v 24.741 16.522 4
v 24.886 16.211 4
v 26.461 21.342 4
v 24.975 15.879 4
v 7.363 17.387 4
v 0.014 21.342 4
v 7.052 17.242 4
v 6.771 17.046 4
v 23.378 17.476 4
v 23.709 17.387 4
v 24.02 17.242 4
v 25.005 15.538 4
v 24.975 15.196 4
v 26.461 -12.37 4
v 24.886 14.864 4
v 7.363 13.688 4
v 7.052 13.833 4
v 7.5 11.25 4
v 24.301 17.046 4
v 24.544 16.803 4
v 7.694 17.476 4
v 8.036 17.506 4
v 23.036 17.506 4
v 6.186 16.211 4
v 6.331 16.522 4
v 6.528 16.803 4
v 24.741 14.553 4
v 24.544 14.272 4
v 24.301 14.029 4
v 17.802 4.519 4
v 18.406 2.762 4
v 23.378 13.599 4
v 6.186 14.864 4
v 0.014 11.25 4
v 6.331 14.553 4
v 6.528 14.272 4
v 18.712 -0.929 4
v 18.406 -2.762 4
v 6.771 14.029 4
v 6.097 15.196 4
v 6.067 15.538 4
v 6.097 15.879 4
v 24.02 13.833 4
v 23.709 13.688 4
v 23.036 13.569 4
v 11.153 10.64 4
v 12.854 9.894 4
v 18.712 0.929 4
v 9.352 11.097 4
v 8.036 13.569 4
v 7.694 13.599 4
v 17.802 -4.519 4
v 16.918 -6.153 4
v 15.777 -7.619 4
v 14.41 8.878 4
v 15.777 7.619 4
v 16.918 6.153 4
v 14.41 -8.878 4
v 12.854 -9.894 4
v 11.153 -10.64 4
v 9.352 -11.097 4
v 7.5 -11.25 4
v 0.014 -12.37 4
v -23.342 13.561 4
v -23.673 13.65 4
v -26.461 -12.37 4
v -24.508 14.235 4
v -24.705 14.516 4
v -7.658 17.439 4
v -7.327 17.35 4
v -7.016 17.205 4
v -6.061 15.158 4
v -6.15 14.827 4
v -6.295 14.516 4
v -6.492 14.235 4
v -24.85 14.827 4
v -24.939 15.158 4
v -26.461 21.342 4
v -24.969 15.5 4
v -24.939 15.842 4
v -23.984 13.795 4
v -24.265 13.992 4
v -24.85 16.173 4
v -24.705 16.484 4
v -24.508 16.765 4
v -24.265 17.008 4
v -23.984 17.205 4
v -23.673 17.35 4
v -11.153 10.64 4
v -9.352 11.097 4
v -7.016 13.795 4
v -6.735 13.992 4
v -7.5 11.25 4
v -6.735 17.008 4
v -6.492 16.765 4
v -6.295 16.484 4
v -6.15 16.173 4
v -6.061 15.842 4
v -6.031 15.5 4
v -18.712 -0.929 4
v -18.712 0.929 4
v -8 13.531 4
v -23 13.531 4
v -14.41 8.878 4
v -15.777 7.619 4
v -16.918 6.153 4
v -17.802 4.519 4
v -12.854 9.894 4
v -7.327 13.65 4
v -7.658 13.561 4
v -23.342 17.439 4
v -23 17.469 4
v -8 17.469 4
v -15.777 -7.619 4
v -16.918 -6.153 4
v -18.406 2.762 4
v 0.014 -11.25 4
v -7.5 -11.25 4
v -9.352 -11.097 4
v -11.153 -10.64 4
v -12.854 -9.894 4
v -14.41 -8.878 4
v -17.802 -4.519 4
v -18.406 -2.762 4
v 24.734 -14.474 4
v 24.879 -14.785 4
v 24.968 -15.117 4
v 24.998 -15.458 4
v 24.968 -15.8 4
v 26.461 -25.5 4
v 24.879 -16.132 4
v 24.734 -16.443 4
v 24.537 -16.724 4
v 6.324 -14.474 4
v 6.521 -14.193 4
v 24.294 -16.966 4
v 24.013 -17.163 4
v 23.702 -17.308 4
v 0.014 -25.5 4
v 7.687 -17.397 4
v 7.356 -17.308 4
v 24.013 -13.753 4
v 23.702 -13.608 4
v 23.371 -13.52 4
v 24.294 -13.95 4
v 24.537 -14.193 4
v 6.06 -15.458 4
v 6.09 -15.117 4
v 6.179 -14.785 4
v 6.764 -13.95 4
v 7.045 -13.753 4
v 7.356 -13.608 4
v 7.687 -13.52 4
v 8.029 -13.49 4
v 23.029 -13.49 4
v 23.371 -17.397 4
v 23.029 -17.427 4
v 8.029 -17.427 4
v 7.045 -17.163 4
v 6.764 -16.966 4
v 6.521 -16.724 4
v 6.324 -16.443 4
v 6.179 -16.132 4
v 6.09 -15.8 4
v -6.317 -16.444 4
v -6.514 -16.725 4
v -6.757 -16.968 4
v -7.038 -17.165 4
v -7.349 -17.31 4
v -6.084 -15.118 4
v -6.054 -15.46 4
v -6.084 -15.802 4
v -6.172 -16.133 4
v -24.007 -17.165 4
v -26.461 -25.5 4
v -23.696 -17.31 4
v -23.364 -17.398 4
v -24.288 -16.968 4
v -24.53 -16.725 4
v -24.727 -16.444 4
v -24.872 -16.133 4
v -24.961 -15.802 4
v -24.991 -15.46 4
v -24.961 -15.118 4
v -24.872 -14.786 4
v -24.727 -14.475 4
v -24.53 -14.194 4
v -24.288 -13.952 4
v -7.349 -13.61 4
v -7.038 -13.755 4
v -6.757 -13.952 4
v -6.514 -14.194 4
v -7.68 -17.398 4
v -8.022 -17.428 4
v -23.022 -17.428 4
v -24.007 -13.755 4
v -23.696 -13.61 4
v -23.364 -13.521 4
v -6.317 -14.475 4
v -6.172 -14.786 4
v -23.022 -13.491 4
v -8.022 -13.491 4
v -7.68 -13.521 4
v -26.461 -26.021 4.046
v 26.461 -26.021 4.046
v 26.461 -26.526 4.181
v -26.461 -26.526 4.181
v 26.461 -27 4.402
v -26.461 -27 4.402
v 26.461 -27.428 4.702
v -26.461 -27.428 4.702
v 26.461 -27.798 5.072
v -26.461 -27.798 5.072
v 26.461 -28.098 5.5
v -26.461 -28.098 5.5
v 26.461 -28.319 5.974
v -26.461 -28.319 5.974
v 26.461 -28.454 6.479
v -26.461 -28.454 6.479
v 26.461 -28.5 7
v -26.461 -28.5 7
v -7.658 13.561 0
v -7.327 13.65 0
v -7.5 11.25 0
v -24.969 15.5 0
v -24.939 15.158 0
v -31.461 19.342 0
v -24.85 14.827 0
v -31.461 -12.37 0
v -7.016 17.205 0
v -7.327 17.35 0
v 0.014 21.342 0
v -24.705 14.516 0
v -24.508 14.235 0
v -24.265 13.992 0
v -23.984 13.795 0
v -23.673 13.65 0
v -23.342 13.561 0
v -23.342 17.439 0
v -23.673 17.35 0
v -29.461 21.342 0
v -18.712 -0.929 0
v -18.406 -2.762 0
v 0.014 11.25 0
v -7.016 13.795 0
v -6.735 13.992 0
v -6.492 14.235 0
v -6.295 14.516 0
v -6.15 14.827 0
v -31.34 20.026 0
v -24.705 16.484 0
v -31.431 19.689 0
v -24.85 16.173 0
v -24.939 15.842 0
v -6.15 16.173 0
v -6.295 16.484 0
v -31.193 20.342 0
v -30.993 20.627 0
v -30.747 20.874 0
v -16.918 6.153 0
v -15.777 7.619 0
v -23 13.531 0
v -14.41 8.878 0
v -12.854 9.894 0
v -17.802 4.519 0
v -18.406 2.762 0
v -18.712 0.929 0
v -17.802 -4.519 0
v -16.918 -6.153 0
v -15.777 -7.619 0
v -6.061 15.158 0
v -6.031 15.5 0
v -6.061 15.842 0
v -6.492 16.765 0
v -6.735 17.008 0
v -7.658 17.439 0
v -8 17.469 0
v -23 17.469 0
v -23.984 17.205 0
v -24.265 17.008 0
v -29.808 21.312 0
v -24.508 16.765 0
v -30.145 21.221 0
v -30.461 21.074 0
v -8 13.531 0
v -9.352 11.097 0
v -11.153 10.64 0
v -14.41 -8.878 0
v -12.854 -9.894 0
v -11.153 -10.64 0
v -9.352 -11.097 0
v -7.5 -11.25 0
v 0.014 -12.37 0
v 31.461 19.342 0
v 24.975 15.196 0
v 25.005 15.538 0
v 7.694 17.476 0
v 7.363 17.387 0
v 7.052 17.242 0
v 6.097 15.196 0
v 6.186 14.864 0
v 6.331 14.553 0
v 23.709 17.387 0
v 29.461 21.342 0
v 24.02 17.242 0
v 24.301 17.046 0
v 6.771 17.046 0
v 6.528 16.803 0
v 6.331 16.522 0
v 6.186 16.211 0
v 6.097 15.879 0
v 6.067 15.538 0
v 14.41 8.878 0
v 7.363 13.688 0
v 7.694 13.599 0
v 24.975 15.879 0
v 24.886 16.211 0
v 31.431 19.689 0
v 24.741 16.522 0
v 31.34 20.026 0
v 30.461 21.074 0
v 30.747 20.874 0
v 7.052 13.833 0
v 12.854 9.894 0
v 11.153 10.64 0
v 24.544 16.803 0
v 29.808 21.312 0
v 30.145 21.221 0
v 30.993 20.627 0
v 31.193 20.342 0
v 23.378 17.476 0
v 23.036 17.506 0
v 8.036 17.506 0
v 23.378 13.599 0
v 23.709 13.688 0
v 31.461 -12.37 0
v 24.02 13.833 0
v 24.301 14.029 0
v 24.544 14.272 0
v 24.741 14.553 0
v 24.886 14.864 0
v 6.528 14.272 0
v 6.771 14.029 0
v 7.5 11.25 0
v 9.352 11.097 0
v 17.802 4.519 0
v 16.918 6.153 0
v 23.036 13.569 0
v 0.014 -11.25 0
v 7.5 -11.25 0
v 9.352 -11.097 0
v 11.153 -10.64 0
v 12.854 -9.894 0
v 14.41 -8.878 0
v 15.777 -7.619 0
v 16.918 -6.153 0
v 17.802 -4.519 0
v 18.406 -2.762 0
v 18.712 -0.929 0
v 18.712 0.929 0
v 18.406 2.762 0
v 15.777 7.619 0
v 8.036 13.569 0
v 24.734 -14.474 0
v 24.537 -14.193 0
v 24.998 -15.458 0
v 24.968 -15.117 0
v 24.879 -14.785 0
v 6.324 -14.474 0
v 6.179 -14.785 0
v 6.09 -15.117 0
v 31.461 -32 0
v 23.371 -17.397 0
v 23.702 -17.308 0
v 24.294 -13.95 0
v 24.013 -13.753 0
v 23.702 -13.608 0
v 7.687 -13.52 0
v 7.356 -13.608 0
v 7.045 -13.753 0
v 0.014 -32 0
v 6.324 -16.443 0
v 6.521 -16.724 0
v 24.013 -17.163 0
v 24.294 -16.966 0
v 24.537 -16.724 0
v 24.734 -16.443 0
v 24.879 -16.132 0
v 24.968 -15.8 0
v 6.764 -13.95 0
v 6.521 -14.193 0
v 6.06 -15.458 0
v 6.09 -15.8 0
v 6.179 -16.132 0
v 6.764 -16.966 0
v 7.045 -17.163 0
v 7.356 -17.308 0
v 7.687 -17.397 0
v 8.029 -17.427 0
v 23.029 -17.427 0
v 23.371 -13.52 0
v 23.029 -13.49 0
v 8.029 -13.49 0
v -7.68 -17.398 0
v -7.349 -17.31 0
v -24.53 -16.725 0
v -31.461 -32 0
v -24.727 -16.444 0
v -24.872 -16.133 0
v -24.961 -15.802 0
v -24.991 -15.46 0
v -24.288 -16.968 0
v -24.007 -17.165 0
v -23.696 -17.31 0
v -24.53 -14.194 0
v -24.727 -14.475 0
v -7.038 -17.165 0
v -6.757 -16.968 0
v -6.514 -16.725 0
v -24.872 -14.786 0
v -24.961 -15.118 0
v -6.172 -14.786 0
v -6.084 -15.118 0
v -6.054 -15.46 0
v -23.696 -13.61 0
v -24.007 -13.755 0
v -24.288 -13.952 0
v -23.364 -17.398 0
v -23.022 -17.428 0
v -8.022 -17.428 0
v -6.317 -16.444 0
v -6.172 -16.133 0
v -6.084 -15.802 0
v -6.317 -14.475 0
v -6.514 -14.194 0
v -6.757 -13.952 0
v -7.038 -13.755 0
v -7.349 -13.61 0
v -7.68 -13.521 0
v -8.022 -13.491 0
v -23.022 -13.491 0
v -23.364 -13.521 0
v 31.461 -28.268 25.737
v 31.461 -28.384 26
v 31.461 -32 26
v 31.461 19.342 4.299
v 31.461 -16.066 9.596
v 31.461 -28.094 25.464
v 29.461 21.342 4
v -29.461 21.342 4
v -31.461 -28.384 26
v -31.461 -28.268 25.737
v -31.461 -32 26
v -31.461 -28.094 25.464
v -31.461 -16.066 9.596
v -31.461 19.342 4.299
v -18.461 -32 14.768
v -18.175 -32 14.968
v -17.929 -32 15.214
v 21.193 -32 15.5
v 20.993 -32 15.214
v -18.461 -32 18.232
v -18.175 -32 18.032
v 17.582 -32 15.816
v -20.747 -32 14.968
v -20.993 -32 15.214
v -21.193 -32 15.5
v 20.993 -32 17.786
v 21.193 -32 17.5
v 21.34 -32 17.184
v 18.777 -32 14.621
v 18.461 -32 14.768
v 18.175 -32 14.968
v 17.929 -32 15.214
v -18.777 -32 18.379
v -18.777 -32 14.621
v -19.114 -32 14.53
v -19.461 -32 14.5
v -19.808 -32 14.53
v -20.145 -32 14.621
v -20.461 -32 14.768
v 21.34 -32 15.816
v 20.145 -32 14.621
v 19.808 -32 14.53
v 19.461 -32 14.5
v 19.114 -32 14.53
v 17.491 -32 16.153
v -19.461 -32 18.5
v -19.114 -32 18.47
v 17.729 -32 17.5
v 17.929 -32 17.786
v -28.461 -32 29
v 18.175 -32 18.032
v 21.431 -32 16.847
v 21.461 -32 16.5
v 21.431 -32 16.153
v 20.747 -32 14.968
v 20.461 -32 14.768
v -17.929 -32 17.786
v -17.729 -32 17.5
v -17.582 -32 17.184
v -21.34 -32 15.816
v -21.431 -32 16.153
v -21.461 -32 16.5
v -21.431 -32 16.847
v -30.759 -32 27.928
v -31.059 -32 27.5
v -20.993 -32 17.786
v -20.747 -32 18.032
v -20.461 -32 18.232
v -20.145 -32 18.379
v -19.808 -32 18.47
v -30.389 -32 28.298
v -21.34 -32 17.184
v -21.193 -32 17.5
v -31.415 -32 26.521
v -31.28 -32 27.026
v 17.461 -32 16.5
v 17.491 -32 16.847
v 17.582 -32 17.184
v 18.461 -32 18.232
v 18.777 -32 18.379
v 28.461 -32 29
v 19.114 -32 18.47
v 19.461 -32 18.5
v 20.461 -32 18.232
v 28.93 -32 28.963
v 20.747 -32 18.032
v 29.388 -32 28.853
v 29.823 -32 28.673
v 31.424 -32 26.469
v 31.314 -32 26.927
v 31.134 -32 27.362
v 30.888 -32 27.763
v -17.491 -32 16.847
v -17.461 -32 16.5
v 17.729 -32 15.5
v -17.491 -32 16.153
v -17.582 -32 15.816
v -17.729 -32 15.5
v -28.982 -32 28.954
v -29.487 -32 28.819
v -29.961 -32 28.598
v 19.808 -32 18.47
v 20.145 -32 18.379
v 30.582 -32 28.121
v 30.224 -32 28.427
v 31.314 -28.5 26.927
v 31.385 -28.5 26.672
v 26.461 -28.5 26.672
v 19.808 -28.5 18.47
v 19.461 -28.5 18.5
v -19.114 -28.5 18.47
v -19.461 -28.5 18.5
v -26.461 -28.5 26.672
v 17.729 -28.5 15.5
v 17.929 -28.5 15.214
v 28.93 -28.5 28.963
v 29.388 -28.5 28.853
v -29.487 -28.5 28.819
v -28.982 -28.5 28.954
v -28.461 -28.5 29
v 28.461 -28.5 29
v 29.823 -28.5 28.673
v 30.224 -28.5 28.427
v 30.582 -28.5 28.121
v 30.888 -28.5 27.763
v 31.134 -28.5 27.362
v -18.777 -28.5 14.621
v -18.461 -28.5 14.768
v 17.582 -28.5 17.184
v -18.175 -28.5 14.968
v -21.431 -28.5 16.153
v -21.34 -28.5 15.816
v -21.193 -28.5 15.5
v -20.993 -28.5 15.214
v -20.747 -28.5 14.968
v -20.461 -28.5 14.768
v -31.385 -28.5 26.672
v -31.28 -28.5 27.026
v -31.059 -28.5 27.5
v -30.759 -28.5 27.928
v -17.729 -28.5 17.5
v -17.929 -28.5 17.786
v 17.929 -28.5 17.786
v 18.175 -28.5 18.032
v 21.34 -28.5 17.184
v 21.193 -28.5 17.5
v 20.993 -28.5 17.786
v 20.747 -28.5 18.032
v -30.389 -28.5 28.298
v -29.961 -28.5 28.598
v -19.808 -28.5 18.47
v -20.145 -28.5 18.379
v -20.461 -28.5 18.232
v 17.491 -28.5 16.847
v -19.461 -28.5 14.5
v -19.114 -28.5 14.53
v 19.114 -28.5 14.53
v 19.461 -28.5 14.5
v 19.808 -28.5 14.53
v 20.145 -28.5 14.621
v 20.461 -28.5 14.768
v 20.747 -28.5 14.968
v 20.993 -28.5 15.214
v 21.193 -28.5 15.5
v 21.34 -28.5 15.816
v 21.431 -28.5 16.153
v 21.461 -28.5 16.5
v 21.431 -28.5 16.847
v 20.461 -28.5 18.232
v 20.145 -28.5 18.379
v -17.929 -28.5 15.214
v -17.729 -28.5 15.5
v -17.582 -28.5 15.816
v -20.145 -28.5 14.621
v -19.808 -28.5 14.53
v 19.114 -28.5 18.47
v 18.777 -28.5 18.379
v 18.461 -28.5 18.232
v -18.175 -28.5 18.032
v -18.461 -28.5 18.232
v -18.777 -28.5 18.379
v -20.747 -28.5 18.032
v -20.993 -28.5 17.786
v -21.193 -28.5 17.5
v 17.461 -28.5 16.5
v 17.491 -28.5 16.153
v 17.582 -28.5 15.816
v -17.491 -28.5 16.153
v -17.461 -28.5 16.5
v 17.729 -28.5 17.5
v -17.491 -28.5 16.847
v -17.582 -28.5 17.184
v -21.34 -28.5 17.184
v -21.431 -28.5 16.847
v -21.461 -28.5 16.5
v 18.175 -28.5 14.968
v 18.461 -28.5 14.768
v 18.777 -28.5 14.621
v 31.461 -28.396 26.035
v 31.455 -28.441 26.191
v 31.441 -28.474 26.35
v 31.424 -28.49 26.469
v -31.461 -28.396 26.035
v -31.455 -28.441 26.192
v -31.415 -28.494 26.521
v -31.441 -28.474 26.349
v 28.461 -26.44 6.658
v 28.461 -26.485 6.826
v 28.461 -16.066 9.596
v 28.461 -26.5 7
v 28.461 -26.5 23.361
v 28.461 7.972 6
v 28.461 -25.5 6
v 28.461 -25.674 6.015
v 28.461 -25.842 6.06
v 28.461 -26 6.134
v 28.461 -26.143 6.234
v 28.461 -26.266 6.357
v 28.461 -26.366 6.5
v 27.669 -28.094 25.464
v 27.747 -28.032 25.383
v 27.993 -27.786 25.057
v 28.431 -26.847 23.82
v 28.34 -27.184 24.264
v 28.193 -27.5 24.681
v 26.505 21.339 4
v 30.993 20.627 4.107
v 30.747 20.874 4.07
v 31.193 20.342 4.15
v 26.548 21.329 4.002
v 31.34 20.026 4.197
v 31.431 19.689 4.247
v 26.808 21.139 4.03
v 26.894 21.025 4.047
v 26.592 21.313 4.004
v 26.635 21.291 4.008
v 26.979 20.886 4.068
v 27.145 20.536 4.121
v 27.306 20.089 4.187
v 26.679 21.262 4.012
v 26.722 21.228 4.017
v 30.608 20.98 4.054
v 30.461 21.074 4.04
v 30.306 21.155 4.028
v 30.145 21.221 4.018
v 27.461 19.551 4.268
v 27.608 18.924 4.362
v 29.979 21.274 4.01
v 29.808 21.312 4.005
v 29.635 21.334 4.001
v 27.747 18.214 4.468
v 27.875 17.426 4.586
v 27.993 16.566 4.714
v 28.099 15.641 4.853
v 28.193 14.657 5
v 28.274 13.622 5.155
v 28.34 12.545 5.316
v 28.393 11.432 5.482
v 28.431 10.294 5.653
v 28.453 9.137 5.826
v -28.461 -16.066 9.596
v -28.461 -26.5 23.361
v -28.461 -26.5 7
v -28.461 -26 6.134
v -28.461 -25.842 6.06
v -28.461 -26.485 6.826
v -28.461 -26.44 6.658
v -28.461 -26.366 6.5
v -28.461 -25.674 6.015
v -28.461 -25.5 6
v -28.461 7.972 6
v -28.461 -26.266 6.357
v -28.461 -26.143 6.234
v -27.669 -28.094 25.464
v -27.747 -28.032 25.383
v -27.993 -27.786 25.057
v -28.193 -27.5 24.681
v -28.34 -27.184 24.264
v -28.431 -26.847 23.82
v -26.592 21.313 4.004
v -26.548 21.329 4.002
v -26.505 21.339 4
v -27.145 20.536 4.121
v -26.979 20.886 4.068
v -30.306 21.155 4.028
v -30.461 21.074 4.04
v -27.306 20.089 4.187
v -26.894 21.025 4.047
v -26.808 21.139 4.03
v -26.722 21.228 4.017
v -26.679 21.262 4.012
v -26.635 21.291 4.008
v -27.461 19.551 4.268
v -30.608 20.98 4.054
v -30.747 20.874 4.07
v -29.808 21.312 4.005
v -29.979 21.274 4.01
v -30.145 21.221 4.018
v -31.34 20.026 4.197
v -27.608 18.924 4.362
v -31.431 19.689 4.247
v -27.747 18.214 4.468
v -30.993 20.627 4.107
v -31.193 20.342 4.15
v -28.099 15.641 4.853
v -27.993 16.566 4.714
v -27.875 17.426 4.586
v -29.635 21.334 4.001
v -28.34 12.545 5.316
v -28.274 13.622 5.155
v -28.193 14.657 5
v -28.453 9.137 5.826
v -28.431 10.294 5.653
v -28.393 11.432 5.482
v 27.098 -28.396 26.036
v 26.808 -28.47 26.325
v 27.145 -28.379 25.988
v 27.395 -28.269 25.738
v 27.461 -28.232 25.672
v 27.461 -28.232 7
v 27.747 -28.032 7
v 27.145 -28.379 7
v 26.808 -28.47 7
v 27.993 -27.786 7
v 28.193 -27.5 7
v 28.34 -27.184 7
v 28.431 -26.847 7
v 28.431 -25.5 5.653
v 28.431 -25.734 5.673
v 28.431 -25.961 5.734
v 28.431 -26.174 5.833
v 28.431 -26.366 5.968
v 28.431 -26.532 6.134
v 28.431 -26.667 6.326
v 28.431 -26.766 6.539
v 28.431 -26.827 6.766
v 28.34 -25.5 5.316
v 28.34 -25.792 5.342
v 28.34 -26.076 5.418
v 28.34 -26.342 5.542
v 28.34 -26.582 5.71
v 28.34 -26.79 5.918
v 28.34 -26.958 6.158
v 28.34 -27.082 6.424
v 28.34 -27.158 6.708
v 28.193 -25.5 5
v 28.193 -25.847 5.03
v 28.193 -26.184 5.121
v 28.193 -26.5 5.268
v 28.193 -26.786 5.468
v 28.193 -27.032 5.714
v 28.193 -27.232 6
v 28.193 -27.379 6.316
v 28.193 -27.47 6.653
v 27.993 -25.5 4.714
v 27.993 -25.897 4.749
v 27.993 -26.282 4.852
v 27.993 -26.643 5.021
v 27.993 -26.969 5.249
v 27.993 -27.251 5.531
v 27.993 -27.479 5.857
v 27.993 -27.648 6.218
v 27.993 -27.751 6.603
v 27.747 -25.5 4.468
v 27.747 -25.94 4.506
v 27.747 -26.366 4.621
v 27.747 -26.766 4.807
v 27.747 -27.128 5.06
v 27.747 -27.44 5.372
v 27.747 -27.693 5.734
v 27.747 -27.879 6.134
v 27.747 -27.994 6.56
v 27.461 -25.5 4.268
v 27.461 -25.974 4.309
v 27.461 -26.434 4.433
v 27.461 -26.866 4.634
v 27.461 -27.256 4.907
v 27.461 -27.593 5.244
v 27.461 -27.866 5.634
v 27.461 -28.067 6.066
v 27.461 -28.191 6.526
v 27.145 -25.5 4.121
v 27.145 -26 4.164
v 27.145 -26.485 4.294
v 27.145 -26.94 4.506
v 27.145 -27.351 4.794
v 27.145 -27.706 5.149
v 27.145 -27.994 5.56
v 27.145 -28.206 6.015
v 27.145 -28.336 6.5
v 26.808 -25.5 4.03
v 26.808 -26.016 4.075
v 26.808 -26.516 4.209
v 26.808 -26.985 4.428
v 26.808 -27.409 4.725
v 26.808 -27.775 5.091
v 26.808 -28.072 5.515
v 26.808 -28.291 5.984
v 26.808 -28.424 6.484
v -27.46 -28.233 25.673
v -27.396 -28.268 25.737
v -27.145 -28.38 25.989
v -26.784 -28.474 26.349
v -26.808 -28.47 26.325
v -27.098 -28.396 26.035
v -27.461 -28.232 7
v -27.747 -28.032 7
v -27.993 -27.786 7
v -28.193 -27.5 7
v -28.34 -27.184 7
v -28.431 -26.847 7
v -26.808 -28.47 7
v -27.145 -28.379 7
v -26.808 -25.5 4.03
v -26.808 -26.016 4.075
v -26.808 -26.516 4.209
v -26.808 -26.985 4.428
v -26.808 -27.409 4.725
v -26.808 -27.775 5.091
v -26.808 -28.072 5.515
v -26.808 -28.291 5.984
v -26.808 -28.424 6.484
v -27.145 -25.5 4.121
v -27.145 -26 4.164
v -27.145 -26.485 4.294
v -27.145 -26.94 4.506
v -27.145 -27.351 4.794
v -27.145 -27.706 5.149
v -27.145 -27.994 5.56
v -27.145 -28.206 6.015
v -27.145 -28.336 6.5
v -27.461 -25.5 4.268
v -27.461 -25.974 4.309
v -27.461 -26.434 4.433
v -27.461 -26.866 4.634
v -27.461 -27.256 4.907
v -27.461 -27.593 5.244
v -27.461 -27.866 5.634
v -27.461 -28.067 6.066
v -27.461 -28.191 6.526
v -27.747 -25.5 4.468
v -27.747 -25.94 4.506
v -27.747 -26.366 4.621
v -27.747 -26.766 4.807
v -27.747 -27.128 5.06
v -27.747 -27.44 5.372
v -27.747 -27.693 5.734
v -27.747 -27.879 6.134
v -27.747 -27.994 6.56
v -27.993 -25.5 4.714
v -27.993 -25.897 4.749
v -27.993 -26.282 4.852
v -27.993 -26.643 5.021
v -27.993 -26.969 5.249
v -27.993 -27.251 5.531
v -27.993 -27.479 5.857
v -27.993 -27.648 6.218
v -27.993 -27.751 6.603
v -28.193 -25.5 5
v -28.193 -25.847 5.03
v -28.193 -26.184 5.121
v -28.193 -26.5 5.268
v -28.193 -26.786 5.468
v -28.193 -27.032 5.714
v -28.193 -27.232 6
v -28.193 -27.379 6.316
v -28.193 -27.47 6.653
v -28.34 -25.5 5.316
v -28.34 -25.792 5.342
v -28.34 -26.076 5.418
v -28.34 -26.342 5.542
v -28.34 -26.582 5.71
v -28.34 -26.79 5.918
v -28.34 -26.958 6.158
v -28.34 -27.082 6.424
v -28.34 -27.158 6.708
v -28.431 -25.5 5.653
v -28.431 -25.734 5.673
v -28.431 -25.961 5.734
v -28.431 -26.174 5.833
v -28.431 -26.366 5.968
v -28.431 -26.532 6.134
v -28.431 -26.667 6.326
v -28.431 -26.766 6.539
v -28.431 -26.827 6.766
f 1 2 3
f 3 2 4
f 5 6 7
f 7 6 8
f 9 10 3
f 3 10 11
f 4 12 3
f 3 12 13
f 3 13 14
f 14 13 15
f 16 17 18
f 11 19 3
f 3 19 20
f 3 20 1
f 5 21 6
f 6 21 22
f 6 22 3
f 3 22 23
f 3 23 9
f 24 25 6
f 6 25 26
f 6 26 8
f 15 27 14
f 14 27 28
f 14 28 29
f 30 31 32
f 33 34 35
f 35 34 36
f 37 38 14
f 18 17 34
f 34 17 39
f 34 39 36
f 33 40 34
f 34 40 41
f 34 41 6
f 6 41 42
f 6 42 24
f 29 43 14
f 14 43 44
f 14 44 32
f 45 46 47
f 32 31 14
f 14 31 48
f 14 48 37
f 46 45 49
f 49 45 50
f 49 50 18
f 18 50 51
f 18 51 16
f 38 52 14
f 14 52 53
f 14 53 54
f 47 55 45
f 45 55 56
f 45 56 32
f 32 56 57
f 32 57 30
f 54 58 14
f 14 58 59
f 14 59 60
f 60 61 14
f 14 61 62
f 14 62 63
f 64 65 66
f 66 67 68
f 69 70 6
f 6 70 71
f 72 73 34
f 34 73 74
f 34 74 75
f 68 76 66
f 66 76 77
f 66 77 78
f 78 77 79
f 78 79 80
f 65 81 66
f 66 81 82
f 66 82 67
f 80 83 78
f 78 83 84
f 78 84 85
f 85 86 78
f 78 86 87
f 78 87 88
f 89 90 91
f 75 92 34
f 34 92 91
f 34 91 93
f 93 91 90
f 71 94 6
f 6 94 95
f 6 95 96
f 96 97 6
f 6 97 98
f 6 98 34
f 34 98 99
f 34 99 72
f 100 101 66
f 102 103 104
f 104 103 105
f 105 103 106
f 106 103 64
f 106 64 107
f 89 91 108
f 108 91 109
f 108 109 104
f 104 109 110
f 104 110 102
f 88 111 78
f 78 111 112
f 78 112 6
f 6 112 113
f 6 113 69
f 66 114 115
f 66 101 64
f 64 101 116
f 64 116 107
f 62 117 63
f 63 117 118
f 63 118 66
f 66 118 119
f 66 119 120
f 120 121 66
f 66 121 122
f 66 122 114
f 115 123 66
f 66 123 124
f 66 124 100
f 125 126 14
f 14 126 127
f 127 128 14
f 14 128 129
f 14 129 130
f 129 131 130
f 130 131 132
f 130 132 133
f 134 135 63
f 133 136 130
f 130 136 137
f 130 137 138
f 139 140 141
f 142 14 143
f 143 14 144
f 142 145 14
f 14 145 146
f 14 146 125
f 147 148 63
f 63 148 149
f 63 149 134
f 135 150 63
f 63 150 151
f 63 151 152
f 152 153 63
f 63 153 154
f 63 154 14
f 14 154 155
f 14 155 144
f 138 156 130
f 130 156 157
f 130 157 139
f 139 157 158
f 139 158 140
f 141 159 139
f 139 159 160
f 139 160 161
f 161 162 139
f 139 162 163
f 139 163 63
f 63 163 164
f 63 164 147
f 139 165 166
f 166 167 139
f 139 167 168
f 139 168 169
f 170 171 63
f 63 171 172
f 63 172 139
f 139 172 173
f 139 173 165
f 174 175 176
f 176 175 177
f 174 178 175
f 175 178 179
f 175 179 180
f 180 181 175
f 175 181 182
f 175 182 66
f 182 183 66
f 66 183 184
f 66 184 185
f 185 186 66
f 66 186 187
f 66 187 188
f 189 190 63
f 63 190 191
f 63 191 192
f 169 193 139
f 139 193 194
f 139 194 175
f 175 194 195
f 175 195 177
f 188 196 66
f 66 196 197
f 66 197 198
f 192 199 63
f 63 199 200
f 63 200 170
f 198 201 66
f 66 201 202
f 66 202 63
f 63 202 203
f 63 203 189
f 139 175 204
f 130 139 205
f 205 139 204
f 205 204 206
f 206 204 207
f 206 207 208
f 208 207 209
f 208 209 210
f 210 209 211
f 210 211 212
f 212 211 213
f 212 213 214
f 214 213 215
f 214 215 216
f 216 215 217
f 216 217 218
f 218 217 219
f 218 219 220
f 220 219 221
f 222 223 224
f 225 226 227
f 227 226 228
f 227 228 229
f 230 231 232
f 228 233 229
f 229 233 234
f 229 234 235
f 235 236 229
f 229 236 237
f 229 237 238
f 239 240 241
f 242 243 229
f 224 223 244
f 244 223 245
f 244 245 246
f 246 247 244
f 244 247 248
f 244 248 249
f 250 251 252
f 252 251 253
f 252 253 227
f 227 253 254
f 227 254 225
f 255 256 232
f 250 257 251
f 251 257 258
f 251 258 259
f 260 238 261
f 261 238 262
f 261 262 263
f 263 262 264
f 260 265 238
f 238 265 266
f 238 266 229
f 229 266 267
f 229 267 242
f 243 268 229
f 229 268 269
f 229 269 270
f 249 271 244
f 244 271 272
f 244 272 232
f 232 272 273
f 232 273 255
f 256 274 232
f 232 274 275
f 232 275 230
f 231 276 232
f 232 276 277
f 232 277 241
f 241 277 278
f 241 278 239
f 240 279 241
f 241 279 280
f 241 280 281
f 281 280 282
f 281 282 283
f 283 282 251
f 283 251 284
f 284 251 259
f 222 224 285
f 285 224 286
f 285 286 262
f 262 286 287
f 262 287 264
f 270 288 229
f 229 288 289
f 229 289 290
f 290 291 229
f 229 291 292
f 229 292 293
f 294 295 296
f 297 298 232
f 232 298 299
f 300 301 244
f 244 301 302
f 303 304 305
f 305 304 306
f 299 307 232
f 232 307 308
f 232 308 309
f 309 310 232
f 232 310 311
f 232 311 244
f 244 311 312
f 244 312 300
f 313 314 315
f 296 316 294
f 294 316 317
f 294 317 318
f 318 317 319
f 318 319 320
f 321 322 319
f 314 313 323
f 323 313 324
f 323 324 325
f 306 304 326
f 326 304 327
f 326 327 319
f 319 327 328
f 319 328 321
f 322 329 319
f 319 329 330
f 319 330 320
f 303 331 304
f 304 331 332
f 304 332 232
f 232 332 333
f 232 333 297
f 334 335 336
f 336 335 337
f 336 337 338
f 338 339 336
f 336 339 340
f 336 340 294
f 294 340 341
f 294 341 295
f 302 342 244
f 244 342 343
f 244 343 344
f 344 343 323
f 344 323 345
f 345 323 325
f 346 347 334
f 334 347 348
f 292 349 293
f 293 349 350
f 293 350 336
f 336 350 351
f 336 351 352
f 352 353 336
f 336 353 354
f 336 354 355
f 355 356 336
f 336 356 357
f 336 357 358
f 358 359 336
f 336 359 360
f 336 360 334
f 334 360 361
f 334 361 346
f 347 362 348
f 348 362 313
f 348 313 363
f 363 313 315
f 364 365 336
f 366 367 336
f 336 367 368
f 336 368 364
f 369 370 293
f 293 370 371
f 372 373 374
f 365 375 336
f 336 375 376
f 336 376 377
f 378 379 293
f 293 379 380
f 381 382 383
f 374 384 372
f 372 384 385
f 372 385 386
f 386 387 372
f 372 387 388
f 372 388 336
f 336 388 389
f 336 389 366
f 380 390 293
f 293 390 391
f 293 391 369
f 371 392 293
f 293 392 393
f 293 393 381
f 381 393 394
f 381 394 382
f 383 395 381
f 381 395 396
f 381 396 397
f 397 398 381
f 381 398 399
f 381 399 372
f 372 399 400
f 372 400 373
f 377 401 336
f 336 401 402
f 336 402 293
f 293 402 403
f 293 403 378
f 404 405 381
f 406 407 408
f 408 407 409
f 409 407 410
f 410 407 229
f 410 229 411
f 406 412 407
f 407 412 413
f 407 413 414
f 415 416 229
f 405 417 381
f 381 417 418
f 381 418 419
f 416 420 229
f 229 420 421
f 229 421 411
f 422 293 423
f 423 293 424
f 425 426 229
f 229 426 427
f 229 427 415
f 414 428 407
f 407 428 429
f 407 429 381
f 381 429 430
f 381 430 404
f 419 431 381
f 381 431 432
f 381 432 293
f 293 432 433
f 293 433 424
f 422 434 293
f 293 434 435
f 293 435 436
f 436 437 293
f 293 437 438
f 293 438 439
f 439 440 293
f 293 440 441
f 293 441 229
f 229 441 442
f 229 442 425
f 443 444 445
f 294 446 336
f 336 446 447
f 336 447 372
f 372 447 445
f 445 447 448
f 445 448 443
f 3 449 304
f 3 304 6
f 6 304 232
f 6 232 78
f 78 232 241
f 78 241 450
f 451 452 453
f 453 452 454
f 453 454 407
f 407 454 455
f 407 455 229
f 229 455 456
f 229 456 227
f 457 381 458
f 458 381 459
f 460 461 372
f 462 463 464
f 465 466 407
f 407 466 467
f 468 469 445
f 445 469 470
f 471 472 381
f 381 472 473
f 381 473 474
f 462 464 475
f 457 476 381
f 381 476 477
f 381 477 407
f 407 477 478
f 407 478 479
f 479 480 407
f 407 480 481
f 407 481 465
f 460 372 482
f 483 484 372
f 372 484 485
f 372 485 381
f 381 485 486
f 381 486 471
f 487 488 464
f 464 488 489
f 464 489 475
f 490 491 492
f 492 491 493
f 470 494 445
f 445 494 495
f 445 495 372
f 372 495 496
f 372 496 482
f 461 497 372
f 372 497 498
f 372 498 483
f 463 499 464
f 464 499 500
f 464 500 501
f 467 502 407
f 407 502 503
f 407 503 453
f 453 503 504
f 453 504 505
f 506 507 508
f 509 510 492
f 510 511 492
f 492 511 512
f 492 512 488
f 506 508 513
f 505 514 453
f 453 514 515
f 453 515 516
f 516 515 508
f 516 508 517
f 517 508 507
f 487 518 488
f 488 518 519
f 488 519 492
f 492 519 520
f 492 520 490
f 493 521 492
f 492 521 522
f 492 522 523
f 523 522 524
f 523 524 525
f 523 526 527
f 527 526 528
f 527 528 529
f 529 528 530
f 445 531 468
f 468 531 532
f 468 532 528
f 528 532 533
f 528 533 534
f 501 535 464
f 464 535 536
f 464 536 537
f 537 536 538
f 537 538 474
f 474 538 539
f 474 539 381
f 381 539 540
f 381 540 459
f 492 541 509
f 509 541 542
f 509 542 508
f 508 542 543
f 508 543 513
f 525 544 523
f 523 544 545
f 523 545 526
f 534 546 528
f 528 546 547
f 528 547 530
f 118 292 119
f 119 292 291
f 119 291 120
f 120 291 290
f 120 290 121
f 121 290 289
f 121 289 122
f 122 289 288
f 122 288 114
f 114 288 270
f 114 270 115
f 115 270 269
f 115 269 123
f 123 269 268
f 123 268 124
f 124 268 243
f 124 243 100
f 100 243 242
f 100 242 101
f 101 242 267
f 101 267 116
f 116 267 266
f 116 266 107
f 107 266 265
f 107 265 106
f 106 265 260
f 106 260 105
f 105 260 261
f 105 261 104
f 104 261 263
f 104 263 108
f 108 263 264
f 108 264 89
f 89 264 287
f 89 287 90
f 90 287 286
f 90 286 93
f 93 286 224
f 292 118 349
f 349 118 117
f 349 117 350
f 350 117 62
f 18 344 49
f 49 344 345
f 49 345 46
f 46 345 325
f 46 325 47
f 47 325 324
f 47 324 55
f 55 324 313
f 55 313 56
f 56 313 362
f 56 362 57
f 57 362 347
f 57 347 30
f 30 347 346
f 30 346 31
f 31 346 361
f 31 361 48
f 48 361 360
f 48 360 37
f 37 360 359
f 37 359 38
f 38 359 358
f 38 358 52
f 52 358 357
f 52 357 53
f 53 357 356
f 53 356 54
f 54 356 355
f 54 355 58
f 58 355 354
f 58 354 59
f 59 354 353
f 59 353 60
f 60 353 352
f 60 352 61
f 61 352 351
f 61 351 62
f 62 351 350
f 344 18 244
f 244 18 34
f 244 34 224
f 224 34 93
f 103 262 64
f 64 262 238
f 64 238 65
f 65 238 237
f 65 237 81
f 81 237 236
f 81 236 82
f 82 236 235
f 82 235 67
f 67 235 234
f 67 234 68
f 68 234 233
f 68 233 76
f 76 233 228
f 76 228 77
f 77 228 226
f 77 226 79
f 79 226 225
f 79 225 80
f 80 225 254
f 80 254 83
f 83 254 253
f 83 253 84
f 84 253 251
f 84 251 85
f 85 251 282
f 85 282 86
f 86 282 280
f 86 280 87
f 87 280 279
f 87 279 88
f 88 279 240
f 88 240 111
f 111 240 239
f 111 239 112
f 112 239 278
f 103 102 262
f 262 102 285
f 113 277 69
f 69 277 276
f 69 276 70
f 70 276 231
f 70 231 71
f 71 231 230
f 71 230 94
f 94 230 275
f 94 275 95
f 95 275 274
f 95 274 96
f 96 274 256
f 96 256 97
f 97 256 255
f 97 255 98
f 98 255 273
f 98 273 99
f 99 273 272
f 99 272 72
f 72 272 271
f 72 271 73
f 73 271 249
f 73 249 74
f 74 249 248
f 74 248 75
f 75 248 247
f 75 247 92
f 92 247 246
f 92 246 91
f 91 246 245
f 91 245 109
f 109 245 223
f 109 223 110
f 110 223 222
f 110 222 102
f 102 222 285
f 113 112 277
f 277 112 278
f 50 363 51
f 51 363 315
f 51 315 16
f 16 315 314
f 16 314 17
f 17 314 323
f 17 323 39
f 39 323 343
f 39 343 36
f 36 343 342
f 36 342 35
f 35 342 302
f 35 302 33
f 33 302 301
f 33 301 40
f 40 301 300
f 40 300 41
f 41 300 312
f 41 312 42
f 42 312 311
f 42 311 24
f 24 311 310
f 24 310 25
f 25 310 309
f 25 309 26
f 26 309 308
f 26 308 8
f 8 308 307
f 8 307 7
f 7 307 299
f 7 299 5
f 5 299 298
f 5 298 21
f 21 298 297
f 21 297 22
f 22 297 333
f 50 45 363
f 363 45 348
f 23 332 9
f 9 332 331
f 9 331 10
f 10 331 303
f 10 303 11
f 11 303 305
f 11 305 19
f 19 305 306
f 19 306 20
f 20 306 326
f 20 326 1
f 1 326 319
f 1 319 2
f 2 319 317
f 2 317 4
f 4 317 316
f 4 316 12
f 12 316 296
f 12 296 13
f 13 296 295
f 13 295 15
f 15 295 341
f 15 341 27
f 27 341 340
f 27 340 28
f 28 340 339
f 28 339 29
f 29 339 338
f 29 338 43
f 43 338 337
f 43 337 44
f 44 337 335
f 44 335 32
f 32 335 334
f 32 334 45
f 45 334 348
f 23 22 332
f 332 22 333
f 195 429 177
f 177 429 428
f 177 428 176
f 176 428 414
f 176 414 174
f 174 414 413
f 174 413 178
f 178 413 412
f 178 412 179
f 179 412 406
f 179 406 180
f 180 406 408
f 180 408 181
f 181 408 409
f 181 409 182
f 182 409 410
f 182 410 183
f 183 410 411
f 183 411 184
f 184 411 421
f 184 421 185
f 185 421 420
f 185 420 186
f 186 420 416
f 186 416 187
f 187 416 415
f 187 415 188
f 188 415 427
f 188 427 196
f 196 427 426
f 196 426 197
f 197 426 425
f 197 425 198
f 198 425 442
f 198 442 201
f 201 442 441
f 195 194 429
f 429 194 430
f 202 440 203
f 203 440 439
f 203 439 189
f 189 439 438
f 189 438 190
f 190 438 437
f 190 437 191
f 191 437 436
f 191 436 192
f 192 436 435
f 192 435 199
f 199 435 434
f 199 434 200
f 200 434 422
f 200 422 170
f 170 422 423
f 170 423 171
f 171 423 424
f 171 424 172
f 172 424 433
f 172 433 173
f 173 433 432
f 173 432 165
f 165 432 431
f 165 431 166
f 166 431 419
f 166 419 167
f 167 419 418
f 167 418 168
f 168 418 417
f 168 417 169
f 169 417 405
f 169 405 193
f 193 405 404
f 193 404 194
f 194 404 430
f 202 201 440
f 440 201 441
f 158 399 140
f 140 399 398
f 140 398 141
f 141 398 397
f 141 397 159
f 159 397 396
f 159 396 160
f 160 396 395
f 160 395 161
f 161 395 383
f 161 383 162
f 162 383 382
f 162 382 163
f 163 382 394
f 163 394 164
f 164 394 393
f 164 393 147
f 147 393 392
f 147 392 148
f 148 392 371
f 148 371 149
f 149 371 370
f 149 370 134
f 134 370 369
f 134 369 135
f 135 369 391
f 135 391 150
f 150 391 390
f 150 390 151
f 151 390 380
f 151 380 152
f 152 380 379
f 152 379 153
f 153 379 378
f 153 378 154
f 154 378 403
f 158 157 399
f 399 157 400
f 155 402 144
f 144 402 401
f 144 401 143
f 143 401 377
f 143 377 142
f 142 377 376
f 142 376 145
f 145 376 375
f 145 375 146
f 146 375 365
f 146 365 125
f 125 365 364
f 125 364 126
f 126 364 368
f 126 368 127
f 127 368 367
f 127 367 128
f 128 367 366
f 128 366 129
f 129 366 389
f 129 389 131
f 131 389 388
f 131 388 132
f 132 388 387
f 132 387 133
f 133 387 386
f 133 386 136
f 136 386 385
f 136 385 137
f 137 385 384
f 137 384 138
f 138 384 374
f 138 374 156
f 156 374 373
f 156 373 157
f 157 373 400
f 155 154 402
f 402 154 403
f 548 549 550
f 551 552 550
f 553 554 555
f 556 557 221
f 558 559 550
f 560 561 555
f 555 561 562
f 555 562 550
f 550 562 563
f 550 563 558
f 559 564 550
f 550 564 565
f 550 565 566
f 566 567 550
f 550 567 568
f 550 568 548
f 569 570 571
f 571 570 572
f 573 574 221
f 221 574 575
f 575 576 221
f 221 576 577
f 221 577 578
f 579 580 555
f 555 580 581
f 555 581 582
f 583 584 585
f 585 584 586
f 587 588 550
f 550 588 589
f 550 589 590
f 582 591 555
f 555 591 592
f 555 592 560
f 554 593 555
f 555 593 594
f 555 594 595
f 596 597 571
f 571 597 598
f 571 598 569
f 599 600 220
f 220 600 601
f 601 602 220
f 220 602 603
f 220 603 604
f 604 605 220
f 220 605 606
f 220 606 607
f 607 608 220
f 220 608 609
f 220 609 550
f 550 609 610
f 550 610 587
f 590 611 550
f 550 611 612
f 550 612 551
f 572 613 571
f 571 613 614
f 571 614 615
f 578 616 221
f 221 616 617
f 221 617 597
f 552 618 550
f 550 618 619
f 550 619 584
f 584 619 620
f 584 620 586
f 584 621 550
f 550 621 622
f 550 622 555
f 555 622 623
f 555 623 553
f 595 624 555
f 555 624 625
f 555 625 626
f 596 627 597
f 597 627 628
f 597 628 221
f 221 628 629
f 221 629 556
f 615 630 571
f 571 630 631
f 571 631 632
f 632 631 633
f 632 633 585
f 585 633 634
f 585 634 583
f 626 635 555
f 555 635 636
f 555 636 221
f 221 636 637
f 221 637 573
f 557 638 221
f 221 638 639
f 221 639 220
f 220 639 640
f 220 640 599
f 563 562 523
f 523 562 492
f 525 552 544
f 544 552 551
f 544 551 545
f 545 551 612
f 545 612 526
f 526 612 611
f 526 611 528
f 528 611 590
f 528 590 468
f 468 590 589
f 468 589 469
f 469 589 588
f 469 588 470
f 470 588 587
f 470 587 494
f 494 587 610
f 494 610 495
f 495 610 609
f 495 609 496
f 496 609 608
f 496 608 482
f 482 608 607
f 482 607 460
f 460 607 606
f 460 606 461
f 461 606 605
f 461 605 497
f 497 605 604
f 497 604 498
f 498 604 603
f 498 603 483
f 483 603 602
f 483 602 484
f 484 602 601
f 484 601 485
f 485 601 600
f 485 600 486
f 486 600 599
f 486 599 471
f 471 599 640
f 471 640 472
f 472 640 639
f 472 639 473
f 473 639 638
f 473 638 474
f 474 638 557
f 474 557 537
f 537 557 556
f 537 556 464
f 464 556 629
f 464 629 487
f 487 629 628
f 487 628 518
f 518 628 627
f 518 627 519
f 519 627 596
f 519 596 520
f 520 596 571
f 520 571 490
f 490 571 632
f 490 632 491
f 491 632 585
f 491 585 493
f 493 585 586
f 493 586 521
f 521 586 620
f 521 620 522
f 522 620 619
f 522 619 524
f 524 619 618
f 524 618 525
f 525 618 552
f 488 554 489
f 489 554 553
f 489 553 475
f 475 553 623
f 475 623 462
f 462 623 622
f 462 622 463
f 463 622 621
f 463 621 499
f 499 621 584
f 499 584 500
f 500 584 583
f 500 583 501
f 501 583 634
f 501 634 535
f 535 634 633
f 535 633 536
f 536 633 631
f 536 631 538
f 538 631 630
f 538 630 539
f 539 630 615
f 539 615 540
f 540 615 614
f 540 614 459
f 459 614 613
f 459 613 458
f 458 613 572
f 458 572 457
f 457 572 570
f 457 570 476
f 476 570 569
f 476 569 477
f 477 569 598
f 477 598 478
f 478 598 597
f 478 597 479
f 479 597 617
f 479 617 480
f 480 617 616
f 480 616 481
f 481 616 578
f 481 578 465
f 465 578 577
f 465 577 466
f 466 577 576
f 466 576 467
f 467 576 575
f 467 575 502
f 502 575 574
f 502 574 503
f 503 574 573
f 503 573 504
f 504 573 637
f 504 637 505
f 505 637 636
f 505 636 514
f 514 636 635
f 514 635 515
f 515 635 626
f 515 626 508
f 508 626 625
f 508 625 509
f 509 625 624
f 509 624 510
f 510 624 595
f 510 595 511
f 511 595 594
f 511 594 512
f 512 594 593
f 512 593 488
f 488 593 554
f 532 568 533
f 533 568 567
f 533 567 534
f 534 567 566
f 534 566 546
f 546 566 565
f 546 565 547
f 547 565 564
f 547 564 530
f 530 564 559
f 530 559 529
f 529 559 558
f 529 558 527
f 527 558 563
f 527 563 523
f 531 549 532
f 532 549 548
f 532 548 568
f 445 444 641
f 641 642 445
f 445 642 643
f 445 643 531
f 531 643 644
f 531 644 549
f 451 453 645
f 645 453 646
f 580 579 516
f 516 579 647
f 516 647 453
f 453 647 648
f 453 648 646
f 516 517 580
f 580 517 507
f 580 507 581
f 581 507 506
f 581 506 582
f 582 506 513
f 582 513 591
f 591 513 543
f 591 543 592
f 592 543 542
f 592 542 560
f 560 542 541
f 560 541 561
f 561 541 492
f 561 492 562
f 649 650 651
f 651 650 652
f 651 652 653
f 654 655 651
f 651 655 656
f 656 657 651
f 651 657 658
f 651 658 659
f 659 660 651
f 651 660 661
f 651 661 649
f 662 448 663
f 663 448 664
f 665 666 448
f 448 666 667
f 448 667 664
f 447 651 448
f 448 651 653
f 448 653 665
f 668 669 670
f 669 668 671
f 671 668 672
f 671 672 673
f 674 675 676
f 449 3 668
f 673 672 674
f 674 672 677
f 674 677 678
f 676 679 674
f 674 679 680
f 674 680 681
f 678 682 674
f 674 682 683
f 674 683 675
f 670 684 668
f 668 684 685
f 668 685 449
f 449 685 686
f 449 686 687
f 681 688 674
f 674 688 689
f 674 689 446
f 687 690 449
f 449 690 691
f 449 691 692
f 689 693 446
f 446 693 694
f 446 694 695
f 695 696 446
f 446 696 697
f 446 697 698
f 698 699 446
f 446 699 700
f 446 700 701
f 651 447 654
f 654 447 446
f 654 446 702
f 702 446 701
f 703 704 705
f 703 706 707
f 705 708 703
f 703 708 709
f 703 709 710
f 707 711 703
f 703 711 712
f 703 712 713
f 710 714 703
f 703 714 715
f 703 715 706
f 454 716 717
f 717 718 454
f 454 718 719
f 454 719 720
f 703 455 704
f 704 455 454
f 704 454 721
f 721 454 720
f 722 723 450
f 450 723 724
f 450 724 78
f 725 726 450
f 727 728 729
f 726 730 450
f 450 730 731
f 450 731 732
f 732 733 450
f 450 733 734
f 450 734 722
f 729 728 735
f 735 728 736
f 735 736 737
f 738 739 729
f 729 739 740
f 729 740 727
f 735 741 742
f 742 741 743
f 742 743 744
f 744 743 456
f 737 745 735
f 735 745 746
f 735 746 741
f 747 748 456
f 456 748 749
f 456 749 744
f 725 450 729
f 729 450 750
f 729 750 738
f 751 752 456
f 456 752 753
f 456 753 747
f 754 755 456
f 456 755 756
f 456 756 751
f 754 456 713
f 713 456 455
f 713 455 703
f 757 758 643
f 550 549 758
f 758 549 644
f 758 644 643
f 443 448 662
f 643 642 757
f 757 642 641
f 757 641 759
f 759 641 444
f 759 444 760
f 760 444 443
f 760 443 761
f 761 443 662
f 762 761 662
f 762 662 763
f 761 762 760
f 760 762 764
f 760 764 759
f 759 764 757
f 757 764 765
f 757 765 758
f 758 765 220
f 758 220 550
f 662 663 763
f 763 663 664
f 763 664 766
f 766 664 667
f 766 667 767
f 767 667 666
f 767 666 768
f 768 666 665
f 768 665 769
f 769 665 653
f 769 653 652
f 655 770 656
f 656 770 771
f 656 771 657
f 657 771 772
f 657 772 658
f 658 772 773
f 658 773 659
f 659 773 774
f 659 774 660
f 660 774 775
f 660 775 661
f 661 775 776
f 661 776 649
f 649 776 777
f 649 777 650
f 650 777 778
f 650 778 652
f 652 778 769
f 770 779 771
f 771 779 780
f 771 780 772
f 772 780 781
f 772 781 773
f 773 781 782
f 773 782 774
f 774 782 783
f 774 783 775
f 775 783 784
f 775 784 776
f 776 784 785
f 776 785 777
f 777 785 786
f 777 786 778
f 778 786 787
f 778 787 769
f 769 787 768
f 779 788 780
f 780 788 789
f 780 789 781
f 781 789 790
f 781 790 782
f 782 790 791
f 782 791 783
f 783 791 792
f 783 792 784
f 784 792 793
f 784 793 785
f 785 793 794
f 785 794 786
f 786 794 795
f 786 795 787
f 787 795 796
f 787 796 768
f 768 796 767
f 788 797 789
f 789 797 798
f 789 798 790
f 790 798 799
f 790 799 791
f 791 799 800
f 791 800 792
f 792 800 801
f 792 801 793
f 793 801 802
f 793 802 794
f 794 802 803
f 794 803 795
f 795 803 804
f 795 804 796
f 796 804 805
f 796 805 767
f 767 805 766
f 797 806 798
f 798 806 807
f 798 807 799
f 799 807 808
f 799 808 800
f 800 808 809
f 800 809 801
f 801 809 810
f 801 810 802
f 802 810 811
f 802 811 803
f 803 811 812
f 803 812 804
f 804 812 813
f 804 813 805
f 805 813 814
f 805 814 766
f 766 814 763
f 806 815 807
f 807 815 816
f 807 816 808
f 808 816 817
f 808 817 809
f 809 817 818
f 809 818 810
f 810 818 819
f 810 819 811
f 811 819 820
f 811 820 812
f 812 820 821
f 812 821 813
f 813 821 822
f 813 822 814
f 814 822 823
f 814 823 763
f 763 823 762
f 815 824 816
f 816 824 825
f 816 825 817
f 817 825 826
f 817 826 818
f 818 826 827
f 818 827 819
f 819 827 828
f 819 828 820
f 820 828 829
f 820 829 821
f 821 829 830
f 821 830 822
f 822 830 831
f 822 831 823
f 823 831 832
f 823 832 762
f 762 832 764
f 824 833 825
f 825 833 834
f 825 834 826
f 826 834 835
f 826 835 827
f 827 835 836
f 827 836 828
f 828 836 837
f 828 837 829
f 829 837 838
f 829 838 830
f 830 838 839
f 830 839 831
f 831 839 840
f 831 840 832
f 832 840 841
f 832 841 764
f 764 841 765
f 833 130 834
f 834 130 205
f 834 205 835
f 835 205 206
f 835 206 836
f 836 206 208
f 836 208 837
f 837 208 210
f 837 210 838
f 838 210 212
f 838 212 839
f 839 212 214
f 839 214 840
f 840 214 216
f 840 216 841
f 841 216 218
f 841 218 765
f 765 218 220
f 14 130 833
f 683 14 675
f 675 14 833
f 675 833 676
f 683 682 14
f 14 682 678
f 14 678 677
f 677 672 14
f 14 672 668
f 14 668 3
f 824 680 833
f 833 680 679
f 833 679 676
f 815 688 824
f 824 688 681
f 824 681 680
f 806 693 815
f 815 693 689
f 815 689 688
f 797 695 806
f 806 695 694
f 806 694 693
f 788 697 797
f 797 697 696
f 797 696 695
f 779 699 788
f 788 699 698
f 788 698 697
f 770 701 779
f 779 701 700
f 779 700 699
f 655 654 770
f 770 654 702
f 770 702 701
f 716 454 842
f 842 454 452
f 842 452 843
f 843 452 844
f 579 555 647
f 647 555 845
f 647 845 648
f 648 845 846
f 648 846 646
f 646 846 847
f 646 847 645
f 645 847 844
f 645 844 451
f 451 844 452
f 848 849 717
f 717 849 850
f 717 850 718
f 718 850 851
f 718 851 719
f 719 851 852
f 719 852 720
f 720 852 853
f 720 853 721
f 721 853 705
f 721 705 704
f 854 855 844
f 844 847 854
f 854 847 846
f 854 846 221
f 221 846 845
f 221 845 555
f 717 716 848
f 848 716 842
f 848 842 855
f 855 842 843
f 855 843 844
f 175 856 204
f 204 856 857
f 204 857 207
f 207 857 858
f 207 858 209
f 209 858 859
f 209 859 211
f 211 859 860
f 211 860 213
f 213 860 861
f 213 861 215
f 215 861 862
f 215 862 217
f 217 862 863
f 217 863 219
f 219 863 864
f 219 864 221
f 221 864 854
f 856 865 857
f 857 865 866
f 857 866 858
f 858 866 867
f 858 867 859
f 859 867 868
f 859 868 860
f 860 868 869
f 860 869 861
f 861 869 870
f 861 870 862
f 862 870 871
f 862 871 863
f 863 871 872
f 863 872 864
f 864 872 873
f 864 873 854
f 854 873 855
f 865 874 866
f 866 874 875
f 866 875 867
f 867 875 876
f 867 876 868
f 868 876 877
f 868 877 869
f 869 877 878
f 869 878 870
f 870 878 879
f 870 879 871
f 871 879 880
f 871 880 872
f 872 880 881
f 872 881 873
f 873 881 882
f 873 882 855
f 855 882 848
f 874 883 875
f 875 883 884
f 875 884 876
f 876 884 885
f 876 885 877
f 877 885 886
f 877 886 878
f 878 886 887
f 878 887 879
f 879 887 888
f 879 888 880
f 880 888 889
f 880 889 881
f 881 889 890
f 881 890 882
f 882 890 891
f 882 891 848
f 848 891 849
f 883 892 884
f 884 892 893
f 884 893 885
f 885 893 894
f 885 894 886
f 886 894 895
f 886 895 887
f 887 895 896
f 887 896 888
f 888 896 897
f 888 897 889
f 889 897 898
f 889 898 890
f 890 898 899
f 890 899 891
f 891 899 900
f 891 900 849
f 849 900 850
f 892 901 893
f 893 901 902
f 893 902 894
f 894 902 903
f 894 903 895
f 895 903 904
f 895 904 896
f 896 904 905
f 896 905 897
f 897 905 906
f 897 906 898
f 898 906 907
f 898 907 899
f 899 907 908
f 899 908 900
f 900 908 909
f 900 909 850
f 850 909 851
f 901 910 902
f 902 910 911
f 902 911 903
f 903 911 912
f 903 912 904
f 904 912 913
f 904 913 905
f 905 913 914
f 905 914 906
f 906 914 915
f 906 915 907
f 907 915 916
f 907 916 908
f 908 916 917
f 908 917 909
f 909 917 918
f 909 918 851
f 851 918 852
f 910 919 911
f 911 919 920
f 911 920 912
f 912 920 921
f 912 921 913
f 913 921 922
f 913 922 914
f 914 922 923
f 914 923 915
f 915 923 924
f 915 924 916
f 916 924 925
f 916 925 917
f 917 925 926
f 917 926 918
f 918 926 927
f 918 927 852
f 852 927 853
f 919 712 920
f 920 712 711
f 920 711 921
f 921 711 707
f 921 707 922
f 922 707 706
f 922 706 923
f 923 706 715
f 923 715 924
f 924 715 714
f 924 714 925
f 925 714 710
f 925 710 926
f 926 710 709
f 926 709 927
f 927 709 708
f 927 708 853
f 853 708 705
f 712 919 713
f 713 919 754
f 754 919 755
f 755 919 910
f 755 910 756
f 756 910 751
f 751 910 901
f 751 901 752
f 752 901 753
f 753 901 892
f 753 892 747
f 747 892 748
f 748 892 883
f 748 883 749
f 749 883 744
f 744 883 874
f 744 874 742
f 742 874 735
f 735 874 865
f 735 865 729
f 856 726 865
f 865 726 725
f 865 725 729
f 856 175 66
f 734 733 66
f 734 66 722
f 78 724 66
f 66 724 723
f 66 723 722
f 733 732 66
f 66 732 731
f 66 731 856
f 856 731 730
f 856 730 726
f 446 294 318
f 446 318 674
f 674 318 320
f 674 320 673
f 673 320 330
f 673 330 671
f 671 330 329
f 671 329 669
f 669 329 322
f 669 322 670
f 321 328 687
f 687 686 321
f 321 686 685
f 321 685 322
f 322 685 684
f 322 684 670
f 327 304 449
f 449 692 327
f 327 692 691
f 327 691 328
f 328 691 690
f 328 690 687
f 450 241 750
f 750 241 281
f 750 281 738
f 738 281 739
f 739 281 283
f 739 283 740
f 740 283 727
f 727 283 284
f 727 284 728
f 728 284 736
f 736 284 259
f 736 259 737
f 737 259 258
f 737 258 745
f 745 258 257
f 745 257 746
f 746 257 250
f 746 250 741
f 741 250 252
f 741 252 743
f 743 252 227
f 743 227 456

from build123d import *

# Parameters (mm, degrees)
SKETCH_1_W          = 62.922128066
SKETCH_1_H          = 53.34190314
EXTRUDE_1_DEPTH     = 4
SKETCH_2_W          = 62.922128066
SKETCH_2_H          = 3.5
EXTRUDE_2_DEPTH     = 25
CUT_EXTRUDE_1_REACH = 67.689
SKETCH_3_R          = 2
FILLET_1_R          = 3
EXTRUDE_3_DEPTH     = 3
EXTRUDE_4_DEPTH     = 3
FILLET_2_R          = 2


with BuildPart() as part:
    # Эскиз1 → Бобышка-Вытянуть1 (new body)
    with BuildSketch(Plane.XY):
        with Locations((0, -5.32904843)):
            Rectangle(SKETCH_1_W, SKETCH_1_H)
        with BuildLine():
            Line((-7.5, 11.25), (7.5, 11.25))
            ThreePointArc((7.5, 11.25), (18.75, 0), (7.5, -11.25))
            Line((7.5, -11.25), (-7.5, -11.25))
            ThreePointArc((-7.5, -11.25), (-18.75, 0), (-7.5, 11.25))
        make_face(mode=Mode.SUBTRACT)
        with BuildLine():
            Line((-23, 17.468671613), (-8, 17.468671613))
            ThreePointArc((-8, 17.468671613), (-6.031328387, 15.5), (-8, 13.531328387))
            Line((-8, 13.531328387), (-23, 13.531328387))
            ThreePointArc((-23, 13.531328387), (-24.968671613, 15.5), (-23, 17.468671613))
        make_face(mode=Mode.SUBTRACT)
        with BuildLine():
            Line((8.035969411, 17.506216751), (23.035969411, 17.506216751))
            ThreePointArc((23.035969411, 17.506216751), (25.004641024, 15.537545138), (23.035969411, 13.568873525))
            Line((23.035969411, 13.568873525), (8.035969411, 13.568873525))
            ThreePointArc((8.035969411, 13.568873525), (6.067297798, 15.537545138), (8.035969411, 17.506216751))
        make_face(mode=Mode.SUBTRACT)
        with BuildLine():
            Line((-23.022315975, -13.49101169), (-8.022315975, -13.49101169))
            ThreePointArc((-8.022315975, -13.49101169), (-6.053644362, -15.459683303), (-8.022315975, -17.428354916))
            Line((-8.022315975, -17.428354916), (-23.022315975, -17.428354916))
            ThreePointArc((-23.022315975, -17.428354916), (-24.990987588, -15.459683303), (-23.022315975, -13.49101169))
        make_face(mode=Mode.SUBTRACT)
        with BuildLine():
            Line((8.028946211, -13.4897295), (23.028946211, -13.4897295))
            ThreePointArc((23.028946211, -13.4897295), (24.997617824, -15.458401113), (23.028946211, -17.427072726))
            Line((23.028946211, -17.427072726), (8.028946211, -17.427072726))
            ThreePointArc((8.028946211, -17.427072726), (6.060274598, -15.458401113), (8.028946211, -13.4897295))
        make_face(mode=Mode.SUBTRACT)
    extrude(amount=EXTRUDE_1_DEPTH)

    # Эскиз2 → Бобышка-Вытянуть2 (add)
    with BuildSketch(Plane.XY.offset(4)):
        with Locations((0, -30.25)):
            Rectangle(SKETCH_2_W, SKETCH_2_H)
    extrude(amount=EXTRUDE_2_DEPTH)

    # Эскиз3 → Вырез-Вытянуть1 (cut, up to next)
    with BuildSketch(Plane(origin=(0, -28.5, 0), x_dir=(1, 0, 0), z_dir=(0, 1, 0)), mode=Mode.PRIVATE) as cut_extrude_1_sk1:
        with Locations(Location((-19.461064033, -16.5, 0), (0, 0, 270))):
            Circle(SKETCH_3_R)
    cut_extrude_1_tool1 = extrude(cut_extrude_1_sk1.sketch, amount=-CUT_EXTRUDE_1_REACH, mode=Mode.PRIVATE) & part.part
    # Эскиз3 → Вырез-Вытянуть1 (cut, up to next)
    with BuildSketch(Plane(origin=(0, -28.5, 0), x_dir=(1, 0, 0), z_dir=(0, 1, 0)), mode=Mode.PRIVATE) as cut_extrude_1_sk2:
        with Locations(Location((19.461064033, -16.5, 0), (0, 0, 270))):
            Circle(SKETCH_3_R)
    cut_extrude_1_tool2 = extrude(cut_extrude_1_sk2.sketch, amount=-CUT_EXTRUDE_1_REACH, mode=Mode.PRIVATE) & part.part
    add(cut_extrude_1_tool1.solids().sort_by_distance((-19.461064, -28.5, 16.5))[0], mode=Mode.SUBTRACT)
    add(cut_extrude_1_tool2.solids().sort_by_distance((19.461064, -28.5, 16.5))[0], mode=Mode.SUBTRACT)

    # Скругление1
    fillet_1_edges = [part.edges().sort_by_distance(p)[0] for p in [
        (0, -28.5, 4),
        (-31.461064033, -30.25, 29),
        (31.461064033, -30.25, 29),
    ]]
    fillet(fillet_1_edges, radius=FILLET_1_R)

    # Эскиз4 → Бобышка-Вытянуть3 (add)
    with BuildSketch(Plane(origin=(31.461064033, 0, 0), x_dir=(0, 0, -1), z_dir=(1, 0, 0))):
        Polygon((-26, -28.5), (-4, -28.5), (-4, 21.34190314), (-9.595875894, -16.066108025), align=None)
    extrude(amount=-EXTRUDE_3_DEPTH)

    # Эскиз5 → Бобышка-Вытянуть4 (add)
    with BuildSketch(Plane.ZY.offset(31.461064033)):
        Polygon((26, -28.5), (4, -28.5), (4, 21.34190314), (9.595875894, -16.066108025), align=None)
    extrude(amount=-EXTRUDE_4_DEPTH)

    # Скругление2
    fillet_2_edges = [part.edges().sort_by_distance(p)[0] for p in [
        (28.461064033, -27.621320344, 4.878679656),
        (28.461064033, -2.07904843, 4),
        (29.961064033, -28.5, 26),
        (28.461064033, -28.5, 16.5),
        (-28.461064033, -27.621320344, 4.878679656),
        (-28.461064033, -2.07904843, 4),
        (-28.461064033, -28.5, 16.5),
        (-29.961064033, -28.5, 26),
        (-31.461064033, 21.34190314, 2),
        (31.461064033, 21.34190314, 2),
    ]]
    fillet(fillet_2_edges, radius=FILLET_2_R)


solid = part.part
